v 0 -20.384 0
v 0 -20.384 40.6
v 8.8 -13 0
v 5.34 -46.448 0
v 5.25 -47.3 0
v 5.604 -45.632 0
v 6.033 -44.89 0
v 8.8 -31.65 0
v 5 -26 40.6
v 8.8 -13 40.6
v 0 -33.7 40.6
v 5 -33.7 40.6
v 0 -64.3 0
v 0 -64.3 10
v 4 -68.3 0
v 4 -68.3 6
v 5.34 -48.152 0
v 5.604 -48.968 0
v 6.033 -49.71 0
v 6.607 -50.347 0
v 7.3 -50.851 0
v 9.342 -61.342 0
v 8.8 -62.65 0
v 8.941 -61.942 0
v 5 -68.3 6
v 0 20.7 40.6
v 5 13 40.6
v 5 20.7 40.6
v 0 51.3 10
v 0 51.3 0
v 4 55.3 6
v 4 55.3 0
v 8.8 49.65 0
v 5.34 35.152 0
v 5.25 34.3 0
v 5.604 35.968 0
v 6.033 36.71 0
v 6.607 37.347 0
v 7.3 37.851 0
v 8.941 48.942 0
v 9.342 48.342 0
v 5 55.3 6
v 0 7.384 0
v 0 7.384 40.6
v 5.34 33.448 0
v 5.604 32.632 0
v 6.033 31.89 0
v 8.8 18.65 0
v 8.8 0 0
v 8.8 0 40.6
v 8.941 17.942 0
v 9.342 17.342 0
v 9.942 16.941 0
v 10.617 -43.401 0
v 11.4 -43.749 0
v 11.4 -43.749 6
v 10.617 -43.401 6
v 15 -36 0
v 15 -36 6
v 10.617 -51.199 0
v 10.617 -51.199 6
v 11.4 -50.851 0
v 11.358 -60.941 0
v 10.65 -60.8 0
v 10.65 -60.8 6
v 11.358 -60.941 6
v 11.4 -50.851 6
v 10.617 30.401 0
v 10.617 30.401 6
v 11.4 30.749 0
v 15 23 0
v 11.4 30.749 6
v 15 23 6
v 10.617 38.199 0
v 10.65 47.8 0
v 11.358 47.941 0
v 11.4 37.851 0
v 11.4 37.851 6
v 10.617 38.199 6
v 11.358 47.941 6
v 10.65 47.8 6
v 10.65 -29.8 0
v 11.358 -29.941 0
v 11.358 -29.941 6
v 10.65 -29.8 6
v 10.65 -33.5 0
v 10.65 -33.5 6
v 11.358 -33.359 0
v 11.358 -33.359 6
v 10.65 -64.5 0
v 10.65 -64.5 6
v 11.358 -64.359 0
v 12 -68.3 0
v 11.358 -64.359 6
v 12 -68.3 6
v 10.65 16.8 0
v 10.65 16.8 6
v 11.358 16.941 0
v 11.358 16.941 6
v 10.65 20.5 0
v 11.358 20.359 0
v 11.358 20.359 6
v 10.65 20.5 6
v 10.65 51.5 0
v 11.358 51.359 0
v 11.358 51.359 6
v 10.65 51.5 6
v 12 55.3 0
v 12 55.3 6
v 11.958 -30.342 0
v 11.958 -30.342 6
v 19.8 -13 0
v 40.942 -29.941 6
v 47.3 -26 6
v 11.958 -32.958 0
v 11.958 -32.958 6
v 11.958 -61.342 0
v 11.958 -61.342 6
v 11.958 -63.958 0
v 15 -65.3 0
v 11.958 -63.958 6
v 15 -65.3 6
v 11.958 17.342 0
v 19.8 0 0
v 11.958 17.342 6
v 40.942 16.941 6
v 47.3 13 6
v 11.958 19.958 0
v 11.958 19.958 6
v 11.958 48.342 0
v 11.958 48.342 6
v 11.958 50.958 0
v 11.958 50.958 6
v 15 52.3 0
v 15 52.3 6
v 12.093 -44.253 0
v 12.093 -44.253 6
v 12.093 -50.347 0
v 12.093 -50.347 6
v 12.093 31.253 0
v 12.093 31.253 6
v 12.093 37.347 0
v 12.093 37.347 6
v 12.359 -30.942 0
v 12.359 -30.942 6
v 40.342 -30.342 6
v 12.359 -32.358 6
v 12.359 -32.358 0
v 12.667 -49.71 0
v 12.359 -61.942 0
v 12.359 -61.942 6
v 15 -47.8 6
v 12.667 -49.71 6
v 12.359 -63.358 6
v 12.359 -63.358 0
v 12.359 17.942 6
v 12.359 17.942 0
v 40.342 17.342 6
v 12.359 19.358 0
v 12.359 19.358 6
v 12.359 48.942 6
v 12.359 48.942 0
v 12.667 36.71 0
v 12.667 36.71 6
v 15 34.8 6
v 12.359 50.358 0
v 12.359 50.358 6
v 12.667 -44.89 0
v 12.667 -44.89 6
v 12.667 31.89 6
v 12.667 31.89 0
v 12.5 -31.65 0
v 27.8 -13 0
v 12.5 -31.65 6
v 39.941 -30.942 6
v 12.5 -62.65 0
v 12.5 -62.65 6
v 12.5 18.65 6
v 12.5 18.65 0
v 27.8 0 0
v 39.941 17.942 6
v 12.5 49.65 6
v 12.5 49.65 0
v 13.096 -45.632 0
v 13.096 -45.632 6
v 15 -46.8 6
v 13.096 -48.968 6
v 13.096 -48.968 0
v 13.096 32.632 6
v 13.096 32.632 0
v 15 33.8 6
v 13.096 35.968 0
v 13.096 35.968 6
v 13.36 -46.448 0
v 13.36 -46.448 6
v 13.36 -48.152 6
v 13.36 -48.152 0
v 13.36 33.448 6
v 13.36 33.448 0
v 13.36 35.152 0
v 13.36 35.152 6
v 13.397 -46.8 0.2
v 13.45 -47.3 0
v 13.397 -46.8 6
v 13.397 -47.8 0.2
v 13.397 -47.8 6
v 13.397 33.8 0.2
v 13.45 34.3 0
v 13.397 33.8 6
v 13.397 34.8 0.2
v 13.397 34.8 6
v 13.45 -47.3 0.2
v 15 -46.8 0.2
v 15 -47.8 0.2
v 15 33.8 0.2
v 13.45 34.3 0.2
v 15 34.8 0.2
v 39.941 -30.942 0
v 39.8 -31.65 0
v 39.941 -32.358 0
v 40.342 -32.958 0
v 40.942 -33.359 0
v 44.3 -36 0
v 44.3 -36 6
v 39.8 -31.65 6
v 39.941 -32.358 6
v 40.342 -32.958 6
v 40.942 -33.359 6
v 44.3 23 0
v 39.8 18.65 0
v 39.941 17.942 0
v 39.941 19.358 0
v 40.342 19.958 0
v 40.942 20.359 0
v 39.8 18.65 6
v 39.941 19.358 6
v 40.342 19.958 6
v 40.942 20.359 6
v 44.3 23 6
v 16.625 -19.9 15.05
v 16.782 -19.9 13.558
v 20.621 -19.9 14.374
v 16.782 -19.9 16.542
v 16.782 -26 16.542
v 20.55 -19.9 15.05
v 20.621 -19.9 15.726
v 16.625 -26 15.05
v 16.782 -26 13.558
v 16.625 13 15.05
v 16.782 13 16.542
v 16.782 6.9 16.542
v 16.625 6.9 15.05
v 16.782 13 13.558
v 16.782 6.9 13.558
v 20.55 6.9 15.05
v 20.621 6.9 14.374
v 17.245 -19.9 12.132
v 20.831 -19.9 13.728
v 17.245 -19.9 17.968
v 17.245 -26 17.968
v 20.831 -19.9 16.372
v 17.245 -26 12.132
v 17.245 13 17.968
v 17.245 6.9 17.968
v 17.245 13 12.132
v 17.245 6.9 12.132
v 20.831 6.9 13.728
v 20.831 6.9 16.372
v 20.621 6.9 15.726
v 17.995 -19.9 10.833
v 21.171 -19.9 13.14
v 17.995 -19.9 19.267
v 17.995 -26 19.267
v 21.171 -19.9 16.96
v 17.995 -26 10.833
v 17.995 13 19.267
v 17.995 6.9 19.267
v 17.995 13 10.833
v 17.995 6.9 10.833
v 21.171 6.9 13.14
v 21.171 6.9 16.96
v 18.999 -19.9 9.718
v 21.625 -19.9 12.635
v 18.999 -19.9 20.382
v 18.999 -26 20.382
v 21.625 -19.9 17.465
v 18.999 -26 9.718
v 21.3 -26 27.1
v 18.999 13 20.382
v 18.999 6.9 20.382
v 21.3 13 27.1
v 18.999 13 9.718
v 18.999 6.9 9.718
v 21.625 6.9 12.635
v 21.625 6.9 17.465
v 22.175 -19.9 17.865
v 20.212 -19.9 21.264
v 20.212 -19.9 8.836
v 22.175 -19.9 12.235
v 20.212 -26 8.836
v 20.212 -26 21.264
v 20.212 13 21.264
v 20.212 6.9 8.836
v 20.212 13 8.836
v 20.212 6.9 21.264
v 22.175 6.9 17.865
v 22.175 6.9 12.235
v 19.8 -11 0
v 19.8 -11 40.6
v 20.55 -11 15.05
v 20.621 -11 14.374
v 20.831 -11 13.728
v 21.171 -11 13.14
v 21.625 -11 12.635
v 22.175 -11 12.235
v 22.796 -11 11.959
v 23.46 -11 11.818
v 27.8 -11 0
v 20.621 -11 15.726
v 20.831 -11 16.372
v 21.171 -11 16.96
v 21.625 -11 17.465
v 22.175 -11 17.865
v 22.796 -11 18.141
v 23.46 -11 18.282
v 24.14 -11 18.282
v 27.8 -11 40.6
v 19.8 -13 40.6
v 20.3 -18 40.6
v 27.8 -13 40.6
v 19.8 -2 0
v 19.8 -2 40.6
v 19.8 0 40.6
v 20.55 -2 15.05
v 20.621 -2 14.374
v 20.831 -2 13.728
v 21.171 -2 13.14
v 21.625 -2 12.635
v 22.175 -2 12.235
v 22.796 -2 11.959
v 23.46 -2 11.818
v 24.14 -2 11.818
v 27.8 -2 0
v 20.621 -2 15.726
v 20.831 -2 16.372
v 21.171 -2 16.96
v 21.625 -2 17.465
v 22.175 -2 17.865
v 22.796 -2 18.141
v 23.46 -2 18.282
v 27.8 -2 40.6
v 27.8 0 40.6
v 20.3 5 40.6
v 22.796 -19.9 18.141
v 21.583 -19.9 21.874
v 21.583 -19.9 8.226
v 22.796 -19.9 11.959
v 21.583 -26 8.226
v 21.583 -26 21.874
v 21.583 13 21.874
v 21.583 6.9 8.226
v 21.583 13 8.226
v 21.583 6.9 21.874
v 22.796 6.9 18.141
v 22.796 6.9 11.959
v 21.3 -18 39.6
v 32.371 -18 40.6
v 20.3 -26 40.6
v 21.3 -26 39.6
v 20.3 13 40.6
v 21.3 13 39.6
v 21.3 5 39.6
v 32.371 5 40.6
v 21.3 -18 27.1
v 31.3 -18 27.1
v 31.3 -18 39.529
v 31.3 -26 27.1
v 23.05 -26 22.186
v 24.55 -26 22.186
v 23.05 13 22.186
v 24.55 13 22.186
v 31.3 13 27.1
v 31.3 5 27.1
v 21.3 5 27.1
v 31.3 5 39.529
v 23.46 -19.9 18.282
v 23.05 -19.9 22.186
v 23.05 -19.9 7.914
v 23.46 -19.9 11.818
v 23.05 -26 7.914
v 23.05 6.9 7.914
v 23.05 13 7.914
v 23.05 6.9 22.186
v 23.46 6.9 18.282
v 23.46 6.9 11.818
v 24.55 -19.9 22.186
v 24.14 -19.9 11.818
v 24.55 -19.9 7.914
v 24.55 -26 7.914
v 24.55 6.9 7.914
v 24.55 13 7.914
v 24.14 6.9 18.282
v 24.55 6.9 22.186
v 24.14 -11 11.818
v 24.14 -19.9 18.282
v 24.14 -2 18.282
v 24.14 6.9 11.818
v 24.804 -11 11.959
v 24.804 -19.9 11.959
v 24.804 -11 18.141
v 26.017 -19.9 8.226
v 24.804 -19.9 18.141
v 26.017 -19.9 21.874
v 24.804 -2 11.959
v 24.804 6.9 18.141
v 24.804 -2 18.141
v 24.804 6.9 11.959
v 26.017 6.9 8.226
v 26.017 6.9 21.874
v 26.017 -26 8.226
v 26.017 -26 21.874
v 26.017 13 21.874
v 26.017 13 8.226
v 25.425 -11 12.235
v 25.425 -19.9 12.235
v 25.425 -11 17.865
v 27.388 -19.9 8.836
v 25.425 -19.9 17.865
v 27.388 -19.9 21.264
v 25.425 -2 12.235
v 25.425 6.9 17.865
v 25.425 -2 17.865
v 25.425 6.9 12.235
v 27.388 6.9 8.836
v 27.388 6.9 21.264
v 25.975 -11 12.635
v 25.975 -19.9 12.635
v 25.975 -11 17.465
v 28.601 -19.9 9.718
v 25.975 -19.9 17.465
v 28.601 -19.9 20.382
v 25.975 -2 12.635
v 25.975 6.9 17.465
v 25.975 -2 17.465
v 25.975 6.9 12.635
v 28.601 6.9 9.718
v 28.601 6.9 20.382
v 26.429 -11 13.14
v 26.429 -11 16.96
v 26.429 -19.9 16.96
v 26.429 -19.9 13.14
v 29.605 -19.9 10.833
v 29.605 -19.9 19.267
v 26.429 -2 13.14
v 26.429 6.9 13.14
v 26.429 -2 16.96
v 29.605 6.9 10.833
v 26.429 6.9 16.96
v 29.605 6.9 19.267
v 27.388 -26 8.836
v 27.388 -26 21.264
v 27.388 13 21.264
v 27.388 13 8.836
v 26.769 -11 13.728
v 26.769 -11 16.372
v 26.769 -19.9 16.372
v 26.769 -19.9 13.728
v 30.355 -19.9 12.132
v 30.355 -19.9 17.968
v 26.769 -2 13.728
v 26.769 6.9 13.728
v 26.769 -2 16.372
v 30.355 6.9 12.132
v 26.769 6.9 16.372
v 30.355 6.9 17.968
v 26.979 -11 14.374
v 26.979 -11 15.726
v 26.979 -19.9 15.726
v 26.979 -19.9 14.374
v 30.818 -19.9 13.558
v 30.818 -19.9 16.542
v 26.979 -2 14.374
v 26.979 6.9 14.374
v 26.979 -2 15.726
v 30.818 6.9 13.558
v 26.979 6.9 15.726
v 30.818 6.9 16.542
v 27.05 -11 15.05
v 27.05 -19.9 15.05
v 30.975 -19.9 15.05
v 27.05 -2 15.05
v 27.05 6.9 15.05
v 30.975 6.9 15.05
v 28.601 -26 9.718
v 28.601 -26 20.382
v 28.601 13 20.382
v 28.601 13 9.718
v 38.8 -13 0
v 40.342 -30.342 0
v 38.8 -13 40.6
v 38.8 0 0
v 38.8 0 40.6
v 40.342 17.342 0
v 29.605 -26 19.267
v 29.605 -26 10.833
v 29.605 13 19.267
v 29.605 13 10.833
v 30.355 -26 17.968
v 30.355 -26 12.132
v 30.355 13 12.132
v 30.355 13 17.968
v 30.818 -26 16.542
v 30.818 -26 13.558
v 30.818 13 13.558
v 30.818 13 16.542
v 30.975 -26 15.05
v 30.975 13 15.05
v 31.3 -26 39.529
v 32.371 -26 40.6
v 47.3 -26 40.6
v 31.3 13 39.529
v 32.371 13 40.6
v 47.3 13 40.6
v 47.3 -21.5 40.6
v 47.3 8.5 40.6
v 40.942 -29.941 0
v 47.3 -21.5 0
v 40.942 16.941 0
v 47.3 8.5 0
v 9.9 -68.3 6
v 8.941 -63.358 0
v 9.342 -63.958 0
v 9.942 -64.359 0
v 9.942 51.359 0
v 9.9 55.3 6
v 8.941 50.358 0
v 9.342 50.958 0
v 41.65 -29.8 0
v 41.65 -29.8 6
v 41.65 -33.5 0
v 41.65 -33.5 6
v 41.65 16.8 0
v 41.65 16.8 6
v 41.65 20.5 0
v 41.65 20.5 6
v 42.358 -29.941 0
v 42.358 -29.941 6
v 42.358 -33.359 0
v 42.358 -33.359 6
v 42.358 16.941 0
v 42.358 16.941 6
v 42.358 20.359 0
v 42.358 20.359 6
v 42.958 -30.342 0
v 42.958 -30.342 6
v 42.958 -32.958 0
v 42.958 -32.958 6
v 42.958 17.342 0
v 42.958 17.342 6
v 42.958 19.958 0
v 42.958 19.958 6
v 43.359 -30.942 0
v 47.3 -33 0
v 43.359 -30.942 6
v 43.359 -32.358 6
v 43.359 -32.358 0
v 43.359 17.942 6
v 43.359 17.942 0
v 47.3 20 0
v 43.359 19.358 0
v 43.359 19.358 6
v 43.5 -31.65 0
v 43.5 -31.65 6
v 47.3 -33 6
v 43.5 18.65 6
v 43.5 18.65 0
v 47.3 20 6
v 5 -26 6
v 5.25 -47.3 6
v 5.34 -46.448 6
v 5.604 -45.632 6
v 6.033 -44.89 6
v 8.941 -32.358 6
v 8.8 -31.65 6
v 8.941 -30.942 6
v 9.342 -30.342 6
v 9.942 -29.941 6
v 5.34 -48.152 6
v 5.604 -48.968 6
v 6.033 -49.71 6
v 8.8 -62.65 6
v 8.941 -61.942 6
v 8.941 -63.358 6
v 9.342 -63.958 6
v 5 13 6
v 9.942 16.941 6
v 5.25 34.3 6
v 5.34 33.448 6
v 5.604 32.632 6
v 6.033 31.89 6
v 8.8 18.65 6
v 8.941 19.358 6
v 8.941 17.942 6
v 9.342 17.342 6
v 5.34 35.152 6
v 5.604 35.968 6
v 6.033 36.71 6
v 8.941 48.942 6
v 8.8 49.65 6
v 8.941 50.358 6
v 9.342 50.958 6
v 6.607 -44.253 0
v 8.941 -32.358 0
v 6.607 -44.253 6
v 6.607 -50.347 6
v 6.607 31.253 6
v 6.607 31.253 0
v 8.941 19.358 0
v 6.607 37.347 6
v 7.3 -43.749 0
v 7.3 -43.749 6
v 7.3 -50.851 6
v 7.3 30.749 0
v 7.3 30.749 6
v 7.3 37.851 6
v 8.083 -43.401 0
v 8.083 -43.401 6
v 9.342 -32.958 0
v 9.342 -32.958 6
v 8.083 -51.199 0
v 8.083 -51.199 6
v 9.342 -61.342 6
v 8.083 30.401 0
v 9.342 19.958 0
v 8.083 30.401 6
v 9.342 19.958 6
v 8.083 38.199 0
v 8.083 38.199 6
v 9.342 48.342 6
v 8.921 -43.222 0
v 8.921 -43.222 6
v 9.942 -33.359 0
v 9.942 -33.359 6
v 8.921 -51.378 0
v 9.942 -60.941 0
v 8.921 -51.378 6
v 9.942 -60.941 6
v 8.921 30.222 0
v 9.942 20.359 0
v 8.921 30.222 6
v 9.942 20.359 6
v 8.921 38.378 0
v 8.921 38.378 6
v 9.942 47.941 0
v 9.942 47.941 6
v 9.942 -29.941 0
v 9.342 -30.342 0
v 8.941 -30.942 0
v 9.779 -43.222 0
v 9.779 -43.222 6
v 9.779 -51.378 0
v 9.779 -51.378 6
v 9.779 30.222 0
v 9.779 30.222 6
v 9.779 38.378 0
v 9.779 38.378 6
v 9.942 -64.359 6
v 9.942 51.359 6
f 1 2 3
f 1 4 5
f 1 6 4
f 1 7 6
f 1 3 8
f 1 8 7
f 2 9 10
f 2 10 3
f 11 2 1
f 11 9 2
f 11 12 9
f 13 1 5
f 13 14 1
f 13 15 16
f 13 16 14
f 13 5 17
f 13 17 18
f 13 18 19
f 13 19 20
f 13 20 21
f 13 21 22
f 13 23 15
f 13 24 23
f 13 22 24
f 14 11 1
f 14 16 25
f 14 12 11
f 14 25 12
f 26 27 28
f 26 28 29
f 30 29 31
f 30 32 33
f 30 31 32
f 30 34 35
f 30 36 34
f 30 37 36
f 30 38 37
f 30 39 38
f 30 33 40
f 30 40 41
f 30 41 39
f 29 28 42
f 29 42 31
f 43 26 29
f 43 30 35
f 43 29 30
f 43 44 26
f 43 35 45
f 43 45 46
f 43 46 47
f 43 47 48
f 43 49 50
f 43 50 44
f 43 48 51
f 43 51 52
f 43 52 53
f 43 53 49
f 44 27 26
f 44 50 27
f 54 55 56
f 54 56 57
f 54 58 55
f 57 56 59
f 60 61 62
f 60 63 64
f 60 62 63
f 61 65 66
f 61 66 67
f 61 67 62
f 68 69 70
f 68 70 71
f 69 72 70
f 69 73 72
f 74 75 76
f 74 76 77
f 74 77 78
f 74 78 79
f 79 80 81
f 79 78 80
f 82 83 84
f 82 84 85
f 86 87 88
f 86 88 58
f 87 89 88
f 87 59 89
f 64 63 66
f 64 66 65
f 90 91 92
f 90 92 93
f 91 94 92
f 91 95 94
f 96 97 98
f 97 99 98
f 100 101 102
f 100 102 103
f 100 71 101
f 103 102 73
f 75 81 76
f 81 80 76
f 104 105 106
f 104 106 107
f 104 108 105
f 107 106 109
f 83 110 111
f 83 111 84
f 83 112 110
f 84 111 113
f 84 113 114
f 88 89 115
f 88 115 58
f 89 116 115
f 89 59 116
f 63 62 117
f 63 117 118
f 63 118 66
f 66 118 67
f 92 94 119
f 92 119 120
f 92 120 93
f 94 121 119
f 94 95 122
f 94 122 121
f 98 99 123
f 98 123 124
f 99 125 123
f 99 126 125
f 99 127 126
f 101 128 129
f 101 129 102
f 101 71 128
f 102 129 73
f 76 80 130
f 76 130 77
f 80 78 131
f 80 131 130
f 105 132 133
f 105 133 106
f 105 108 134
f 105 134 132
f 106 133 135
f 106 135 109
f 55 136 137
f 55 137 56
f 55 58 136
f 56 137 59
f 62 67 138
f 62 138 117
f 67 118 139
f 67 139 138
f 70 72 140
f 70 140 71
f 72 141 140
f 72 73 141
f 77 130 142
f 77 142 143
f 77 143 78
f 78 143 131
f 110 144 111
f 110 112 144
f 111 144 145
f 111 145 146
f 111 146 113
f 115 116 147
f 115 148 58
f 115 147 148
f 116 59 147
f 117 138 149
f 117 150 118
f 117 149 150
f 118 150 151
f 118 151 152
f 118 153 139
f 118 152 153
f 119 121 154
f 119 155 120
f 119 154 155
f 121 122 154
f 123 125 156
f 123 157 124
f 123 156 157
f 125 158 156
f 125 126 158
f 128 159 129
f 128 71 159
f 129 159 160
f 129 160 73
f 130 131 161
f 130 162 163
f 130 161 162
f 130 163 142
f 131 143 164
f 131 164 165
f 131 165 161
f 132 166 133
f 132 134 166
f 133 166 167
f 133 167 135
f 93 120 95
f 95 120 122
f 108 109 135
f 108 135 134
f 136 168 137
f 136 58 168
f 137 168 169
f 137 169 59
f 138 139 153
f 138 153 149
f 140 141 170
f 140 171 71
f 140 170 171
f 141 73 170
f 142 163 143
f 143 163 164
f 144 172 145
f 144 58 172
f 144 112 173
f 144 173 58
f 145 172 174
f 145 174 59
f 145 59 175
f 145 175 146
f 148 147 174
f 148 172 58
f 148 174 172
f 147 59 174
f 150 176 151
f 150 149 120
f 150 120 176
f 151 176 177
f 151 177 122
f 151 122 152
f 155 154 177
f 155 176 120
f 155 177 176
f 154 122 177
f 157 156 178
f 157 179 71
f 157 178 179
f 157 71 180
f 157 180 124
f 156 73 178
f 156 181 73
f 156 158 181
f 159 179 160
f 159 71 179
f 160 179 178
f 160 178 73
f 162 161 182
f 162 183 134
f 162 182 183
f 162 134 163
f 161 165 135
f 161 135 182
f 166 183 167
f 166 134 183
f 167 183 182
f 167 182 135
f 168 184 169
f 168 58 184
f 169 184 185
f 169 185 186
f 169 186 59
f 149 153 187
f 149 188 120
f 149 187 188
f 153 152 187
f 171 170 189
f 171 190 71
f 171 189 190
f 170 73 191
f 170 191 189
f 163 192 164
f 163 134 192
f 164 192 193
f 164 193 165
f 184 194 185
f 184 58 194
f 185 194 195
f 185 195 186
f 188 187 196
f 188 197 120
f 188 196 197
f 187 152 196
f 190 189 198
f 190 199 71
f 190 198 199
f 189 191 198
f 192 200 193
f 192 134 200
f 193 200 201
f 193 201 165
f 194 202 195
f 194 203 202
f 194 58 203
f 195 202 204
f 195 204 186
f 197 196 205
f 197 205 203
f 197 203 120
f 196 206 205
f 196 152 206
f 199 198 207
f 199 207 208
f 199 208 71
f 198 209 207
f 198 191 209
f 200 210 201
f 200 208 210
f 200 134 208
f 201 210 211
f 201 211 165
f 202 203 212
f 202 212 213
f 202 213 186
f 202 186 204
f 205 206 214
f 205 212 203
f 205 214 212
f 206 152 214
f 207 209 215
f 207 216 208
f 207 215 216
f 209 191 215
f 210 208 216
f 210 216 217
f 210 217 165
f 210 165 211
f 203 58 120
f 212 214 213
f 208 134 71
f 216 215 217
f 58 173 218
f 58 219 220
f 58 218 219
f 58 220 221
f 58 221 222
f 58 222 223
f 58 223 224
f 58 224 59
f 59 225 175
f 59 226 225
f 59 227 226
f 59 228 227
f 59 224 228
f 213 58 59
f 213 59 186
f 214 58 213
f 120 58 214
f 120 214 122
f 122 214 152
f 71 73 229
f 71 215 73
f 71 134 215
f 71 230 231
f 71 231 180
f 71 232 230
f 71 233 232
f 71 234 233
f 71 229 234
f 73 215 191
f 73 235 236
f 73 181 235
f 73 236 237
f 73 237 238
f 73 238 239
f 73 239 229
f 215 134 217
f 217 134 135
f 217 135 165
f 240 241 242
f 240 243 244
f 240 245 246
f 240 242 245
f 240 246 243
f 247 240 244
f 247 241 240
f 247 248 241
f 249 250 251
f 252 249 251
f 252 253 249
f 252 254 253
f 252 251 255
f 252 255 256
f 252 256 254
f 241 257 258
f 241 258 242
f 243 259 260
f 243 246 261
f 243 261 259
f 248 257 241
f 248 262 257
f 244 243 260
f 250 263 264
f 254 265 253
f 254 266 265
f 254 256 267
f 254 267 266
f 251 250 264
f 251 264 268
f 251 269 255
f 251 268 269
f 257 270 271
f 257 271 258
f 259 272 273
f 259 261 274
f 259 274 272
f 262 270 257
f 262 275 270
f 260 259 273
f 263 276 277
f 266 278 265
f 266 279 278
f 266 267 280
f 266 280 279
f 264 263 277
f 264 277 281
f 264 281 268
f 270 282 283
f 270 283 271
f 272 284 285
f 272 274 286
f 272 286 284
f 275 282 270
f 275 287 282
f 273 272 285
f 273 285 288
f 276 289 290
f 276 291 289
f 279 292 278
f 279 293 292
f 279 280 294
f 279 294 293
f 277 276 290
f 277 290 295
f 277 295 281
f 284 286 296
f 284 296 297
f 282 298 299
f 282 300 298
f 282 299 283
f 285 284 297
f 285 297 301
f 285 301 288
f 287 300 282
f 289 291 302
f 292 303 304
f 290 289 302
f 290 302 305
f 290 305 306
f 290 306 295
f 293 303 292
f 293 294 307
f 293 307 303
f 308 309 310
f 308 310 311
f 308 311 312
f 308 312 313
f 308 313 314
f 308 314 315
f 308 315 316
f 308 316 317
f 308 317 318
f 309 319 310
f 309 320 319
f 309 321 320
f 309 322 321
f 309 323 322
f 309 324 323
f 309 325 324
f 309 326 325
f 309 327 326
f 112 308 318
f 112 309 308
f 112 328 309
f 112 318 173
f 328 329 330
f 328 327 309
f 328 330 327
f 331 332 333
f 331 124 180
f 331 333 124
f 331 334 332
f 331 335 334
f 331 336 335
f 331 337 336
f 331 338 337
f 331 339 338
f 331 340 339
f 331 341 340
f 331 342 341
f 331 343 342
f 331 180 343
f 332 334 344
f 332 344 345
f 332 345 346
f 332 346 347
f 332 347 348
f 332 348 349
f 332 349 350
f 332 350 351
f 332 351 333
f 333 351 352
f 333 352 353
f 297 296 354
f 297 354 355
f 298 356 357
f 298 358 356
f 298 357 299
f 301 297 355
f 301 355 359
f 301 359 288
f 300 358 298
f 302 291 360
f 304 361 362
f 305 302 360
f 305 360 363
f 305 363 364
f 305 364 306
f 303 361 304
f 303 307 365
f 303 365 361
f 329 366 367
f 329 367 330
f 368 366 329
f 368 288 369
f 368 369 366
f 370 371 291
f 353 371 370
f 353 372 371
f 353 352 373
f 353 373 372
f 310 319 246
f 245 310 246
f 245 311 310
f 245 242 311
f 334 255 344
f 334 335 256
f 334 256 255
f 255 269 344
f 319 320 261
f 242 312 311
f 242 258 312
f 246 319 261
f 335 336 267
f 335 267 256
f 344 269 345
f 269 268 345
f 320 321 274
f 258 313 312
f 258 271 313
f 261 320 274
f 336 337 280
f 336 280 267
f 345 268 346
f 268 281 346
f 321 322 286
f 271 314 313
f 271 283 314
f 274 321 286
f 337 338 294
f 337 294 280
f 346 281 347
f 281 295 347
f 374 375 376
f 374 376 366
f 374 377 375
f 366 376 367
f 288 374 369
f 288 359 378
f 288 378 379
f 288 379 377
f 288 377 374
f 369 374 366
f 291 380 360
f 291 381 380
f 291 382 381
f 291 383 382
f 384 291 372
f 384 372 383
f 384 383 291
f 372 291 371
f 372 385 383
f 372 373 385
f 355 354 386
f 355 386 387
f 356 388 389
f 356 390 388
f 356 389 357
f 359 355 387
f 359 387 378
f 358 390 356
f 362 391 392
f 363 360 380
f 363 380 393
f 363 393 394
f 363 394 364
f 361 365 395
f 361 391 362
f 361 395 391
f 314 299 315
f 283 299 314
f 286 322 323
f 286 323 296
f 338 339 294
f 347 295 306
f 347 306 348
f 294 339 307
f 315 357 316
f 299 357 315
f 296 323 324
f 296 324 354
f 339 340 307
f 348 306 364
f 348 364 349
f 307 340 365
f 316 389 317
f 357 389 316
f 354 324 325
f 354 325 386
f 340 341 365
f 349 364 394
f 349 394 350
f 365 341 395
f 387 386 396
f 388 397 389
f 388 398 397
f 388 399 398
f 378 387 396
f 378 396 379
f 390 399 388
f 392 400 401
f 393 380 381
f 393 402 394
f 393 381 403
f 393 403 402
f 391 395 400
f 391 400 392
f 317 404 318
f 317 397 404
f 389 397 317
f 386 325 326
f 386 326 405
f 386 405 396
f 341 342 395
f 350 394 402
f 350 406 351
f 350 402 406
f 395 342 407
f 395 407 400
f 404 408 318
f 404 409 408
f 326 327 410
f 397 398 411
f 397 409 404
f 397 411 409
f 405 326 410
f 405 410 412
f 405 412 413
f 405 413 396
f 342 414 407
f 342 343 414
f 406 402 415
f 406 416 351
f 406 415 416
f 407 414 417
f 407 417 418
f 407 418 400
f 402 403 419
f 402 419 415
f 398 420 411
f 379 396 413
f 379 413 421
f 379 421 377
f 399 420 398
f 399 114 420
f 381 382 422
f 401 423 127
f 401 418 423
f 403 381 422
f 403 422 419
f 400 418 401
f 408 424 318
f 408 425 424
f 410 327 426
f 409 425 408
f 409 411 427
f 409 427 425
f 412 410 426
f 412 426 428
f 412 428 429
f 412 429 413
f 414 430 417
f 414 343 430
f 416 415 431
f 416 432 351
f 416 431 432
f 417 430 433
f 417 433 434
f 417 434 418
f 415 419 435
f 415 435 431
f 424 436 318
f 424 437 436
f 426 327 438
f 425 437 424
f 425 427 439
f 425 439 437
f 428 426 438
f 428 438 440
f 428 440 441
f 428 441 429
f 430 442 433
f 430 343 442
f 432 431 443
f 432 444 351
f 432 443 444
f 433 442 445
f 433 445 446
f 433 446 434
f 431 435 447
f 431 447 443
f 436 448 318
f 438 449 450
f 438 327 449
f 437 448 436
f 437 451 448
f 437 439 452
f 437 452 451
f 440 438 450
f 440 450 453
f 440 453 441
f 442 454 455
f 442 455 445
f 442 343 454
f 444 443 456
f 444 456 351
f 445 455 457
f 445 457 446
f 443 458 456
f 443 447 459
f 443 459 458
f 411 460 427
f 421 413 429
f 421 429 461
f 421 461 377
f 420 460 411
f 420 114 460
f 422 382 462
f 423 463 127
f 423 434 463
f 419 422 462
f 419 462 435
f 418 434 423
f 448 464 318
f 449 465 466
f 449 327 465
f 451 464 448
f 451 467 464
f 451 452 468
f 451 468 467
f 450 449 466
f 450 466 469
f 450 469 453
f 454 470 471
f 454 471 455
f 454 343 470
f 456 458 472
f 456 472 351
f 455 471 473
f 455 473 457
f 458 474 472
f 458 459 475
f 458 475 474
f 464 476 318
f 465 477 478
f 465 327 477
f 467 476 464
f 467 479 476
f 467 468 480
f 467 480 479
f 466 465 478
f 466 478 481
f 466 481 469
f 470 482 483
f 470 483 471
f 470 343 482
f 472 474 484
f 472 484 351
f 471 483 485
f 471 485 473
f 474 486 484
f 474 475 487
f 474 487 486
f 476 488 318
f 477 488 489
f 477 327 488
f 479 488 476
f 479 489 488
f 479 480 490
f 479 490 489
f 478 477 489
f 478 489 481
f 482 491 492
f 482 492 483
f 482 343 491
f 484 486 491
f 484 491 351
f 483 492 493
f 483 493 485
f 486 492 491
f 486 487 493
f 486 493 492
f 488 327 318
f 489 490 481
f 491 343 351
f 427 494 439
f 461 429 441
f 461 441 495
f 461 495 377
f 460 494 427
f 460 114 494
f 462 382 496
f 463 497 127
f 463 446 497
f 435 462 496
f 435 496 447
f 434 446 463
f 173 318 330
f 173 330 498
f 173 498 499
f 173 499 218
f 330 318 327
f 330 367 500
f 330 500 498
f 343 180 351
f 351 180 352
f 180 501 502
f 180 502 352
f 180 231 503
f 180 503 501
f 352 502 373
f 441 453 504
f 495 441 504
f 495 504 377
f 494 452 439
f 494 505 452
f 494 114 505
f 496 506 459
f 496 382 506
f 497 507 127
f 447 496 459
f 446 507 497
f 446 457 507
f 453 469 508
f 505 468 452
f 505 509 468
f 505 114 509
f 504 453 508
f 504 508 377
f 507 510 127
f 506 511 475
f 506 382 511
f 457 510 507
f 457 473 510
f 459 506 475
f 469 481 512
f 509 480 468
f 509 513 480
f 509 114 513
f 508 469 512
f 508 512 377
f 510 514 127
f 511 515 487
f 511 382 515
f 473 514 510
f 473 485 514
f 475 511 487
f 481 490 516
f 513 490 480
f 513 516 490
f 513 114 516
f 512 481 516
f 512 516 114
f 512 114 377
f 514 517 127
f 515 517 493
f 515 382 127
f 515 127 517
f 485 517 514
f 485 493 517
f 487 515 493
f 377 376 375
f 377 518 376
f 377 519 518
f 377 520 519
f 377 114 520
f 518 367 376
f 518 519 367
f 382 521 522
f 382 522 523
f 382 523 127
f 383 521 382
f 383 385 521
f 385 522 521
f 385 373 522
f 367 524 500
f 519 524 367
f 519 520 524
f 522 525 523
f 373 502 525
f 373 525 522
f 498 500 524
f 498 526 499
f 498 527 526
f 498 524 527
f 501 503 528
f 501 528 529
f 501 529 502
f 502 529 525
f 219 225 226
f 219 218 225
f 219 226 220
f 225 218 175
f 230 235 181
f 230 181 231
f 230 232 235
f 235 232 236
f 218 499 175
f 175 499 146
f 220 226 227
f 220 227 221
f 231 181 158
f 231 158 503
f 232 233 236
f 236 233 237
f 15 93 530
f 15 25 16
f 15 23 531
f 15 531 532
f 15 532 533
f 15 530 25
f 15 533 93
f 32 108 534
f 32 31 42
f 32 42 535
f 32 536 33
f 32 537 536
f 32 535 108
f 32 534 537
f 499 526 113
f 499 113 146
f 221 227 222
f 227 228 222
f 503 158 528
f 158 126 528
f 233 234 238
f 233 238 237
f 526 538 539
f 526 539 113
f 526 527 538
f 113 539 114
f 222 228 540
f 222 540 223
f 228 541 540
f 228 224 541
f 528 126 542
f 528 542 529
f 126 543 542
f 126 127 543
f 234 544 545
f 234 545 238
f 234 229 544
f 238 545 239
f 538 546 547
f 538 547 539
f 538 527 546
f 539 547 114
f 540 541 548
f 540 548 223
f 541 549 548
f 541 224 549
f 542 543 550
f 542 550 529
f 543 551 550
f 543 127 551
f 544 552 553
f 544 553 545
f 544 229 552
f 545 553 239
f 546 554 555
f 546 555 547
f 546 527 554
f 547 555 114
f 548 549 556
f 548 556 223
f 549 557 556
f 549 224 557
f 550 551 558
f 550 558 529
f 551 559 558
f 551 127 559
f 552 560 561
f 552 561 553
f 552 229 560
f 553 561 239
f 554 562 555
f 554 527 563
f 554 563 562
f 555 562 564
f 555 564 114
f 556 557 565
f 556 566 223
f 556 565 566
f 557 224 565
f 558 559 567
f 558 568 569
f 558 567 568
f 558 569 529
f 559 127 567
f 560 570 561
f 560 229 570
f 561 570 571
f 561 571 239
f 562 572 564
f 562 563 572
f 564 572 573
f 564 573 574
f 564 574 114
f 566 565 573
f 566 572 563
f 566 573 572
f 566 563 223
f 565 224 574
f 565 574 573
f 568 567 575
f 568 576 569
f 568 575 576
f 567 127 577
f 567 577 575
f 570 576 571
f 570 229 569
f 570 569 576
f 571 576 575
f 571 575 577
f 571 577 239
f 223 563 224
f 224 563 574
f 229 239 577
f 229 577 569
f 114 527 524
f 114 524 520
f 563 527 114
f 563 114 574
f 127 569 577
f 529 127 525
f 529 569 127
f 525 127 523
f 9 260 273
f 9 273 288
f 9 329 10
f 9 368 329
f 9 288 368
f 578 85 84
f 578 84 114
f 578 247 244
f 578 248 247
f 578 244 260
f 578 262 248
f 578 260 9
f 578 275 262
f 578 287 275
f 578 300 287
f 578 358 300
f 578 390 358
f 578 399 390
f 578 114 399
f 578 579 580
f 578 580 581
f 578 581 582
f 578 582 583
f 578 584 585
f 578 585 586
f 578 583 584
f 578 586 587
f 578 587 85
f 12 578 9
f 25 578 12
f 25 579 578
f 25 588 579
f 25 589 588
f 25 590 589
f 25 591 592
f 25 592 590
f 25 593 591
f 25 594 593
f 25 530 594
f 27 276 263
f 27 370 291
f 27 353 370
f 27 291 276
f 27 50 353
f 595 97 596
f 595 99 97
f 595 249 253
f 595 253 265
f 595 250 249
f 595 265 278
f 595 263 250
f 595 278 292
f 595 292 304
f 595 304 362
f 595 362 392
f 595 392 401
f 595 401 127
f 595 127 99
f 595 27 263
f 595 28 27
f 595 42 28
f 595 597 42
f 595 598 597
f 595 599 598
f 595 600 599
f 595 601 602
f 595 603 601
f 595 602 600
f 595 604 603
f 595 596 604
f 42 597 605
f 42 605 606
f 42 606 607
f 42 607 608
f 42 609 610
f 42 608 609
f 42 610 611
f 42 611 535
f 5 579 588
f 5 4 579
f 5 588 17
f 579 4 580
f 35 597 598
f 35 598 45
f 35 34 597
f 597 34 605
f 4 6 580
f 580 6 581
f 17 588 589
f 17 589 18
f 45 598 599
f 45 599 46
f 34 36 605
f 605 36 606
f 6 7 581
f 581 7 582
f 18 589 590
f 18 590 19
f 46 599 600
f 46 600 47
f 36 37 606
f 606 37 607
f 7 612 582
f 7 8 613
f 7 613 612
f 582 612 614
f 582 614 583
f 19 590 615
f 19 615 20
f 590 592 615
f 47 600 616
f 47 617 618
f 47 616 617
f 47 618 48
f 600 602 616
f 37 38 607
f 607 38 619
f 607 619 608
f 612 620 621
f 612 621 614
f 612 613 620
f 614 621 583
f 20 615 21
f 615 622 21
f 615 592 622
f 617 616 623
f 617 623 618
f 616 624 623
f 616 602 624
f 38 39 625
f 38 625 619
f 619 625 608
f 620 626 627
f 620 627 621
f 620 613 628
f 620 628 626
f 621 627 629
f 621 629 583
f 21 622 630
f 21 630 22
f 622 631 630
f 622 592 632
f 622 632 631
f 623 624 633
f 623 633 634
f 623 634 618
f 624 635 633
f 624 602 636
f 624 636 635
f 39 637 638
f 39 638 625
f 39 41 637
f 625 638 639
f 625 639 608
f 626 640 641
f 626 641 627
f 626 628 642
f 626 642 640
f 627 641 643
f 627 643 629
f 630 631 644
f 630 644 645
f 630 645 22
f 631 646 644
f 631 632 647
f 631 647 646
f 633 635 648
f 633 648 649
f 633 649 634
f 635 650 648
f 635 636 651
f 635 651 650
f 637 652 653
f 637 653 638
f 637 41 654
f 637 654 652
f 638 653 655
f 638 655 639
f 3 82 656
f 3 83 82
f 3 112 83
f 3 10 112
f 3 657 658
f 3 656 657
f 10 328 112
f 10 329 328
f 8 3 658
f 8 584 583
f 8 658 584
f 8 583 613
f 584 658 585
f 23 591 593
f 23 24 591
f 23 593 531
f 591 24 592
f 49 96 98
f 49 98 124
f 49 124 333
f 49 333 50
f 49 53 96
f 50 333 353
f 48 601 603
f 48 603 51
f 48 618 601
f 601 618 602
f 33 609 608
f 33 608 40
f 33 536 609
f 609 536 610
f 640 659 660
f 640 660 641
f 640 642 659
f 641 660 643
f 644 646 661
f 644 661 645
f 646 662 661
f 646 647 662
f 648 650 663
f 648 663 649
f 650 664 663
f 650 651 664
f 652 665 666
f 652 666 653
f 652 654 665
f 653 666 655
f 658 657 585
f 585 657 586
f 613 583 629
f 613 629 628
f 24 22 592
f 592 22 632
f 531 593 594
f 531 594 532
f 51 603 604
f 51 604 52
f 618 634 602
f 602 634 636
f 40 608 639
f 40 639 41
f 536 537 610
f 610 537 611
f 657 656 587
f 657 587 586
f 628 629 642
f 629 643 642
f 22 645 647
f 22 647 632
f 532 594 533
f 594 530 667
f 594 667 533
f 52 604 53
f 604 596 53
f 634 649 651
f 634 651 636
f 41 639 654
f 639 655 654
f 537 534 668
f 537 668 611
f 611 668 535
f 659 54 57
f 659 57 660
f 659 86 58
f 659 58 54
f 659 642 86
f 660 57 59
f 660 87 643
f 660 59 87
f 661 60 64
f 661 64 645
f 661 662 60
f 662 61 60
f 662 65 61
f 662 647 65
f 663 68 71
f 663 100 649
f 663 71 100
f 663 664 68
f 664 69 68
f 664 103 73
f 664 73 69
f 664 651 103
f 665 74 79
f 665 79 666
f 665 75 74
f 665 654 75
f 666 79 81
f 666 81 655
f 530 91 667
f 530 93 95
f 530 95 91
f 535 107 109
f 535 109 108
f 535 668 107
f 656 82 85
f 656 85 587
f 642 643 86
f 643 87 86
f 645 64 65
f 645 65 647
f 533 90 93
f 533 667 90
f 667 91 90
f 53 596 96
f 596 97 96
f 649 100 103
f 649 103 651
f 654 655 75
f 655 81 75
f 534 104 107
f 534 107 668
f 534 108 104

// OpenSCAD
// file: ../configuration.scad
// Layer high for the printing [mm]
layer_height = 0.20; //Slic3r->Print Settings->Layers and perimeters->Layer height

// Spare for the screws heads [mm]
spare = 0.75;
// M6 screw diameter [mm]
M6_head_diameter = 13.6+spare;
//M6_head_diameter = 10.6+spare;
//M6_head_diameter = 12+spare;

// M6 head high (for hiding it) [mm]
//M6_head_height = 4;
M6_head_height = 3.6;
//M6_head_height = 4.5;

// Screws and rods diameters
M8_smooth_rod_diameter = 8.3;
M8_smooth_rod_diameter_catch = 8.4;
// Prumer 8mm tyce
rod_8mm_d = 8.2; //pro dil z-top
M6_diameter = 6.6;
M6_dia=M6_diameter; //pro dil z-top
M6_diamater_horizontal = 6.5;
M3_diameter = 3.7;
M3_diameter_horizontal = 3.5;

//matice trapézové tyče
TRAP_diameter_externa=22; //průmer vnější 


// Nuts diameters
M3_nut_diameter = 7.0;
M3_nut_diameter_horizontal = 6.7;

// ALU profile parameters
ALU_cut_width = 7.9;
ALU_cut_width_horizontal = 7.7;

// Sirka matky do profilu (pokud neni pouzita, tak 0)
//profile_nut_width = 9.5;
profile_nut_width = 0; //pro z-top

// Motors length/depth (for axes Z and Y)
//SX17-1003LQFE (recommended for the Z axis)
motor_length = 29.5;
//SX17-1003 (recommended for the Z axis)
//motor_length = 34;
//SX17-1005
//motor_length = 40;
//SX17-0905 - this motor is too high - the Z end stop holder has to be adjusted
//motor_length = 48;

// Extrusion width [mm]
extrusion_width = 0.66; //Slic3r->Print Settings->Advanced->Default extrusion width

/// Belt type ******************************************************

// GT2 
/*belt_tooth_distance = 2;
belt_tooth_ratio = 0.5;
belt_tooth_height = 1.4;
belt_thickness = 2.3;
*/

// T2.5
belt_tooth_distance = 2.5;
belt_tooth_ratio = 0.5;


// Tloustka rohovych spojek
// 5 mm => sroub M6x14 s podlozkou
// 3 mm => sroub M6x12 s podlozkou
coupler_thickness = 3;
// main file
// RebeliX
//
// z bottom
// GNU GPL v3
// Martin Neruda <neruda@reprap4u.cz>
// http://www.reprap4u.cz
// Inspired by Rebel II and Prusa i3


include <../configuration.scad>

// Space between stepper and the part (less vibrations)
space = 0.6;

height = motor_length + space;

// Same value as in z_top (minimum 13)
base_offset = 13; 

// Stepper side offset
motor_offset = 0; 

module z_bottom_base(){
 translate([0,0,0]) cube([42.3+5,42.3+base_offset,6]);
 translate([0,0,0]) cube([42.3+5,base_offset,height<=34+space ? 34+space+6 : height+6]);
 translate([0,0,0]) cube([5,42.3+base_offset,(height>=34+space)||(height<=34+space) ? 34+space+6 : height+6]);
 translate([2.5+21.3-4+motor_offset,-2,0]) cube([8,3,height<=34+space ? 34+space+6 : height+6]);
}

module z_bottom_cuts(){
 translate([15,10+base_offset,-0.1]) rotate([0,0,0]) cube([50,50,10]);
 translate([7.5,21.3+base_offset-0.5,layer_height]) cube([10,1,10]); 
 
 translate([2.5+21.3-15+motor_offset,0,-0.1]) rotate([0,0,-220]) cube([30,15,height<=34+space ? 34+space+8 : height+8]);
 translate([2.5+21.3+15+motor_offset,0,-0.1]) rotate([0,0,-45]) cube([15,15,height<=34+space ? 34+space+8 : height+8]); 

 translate([42.3+6,6+base_offset,-0.1]) rotate([0,0,45]) cube([10,10,height+8]);
 translate([15,42.3+base_offset-3,-0.1]) rotate([0,0,45]) cube([10,10,height+8]);
 translate([-5,42.3+base_offset-9,-0.1]) rotate([0,0,45]) cube([20,10,height+8]);
 
 translate([-0.1,42.3+base_offset,6]) rotate([45,0,0]) cube([10,70,50]); 
 
 // Stepper wires hole
 //translate([5+21.3-5,5,height+6-7]) cube([10,30,30]); 
 translate([5+21.3-5,5,height+6-9]) cube([10,20,30]); 
 translate([5+21.3,5,height<=34+space ? 34+space+7 : height+7]) rotate([0,45,0]) cube([5,30,5]); 
 translate([5+21.3-7,5,height<=34+space ? 34+space+7 : height+7]) rotate([0,45,0]) cube([5,30,5]);
}

module z_bottom_holes(){

 // M8 rod hole
 translate([5+4.35,21.3+base_offset,-0.1]) rotate([0,0,0]) cylinder(r = rod_8mm_d/2, h = 7, $fn = 30);

 // Stepper hole
 translate([5+5.65,base_offset+5.65,-0.1]){
	translate([0,0,0]) cylinder(h = 20, r=M3_diameter/2, $fn=16);
	translate([31,0,0]) cylinder(h = 20, r=M3_diameter/2, $fn=16);
	translate([0,31,0]) cylinder(h = 20, r=M3_diameter/2, $fn=16);
 }

 
 // ALU mount holes
 translate([2.5+21.3+motor_offset,base_offset-M6_head_height-2.5,height/2]) rotate([-90,0,0]) cylinder(r = M6_head_diameter/2, h = 20, $fn = 30);
 translate([2.5+21.3+motor_offset,-3,height/2]) rotate([-90,0,0]) cylinder(r = M6_diamater_horizontal/2, h = 20, $fn = 30);
}

// Whole part
module z_bottom(){
 difference(){
  z_bottom_base();
  z_bottom_cuts();
  z_bottom_holes();
 }
 translate([0,-13,0]) mirror([0,1,0]) difference(){
  z_bottom_base();
  z_bottom_cuts();
  z_bottom_holes();
 }
}

z_bottom();
